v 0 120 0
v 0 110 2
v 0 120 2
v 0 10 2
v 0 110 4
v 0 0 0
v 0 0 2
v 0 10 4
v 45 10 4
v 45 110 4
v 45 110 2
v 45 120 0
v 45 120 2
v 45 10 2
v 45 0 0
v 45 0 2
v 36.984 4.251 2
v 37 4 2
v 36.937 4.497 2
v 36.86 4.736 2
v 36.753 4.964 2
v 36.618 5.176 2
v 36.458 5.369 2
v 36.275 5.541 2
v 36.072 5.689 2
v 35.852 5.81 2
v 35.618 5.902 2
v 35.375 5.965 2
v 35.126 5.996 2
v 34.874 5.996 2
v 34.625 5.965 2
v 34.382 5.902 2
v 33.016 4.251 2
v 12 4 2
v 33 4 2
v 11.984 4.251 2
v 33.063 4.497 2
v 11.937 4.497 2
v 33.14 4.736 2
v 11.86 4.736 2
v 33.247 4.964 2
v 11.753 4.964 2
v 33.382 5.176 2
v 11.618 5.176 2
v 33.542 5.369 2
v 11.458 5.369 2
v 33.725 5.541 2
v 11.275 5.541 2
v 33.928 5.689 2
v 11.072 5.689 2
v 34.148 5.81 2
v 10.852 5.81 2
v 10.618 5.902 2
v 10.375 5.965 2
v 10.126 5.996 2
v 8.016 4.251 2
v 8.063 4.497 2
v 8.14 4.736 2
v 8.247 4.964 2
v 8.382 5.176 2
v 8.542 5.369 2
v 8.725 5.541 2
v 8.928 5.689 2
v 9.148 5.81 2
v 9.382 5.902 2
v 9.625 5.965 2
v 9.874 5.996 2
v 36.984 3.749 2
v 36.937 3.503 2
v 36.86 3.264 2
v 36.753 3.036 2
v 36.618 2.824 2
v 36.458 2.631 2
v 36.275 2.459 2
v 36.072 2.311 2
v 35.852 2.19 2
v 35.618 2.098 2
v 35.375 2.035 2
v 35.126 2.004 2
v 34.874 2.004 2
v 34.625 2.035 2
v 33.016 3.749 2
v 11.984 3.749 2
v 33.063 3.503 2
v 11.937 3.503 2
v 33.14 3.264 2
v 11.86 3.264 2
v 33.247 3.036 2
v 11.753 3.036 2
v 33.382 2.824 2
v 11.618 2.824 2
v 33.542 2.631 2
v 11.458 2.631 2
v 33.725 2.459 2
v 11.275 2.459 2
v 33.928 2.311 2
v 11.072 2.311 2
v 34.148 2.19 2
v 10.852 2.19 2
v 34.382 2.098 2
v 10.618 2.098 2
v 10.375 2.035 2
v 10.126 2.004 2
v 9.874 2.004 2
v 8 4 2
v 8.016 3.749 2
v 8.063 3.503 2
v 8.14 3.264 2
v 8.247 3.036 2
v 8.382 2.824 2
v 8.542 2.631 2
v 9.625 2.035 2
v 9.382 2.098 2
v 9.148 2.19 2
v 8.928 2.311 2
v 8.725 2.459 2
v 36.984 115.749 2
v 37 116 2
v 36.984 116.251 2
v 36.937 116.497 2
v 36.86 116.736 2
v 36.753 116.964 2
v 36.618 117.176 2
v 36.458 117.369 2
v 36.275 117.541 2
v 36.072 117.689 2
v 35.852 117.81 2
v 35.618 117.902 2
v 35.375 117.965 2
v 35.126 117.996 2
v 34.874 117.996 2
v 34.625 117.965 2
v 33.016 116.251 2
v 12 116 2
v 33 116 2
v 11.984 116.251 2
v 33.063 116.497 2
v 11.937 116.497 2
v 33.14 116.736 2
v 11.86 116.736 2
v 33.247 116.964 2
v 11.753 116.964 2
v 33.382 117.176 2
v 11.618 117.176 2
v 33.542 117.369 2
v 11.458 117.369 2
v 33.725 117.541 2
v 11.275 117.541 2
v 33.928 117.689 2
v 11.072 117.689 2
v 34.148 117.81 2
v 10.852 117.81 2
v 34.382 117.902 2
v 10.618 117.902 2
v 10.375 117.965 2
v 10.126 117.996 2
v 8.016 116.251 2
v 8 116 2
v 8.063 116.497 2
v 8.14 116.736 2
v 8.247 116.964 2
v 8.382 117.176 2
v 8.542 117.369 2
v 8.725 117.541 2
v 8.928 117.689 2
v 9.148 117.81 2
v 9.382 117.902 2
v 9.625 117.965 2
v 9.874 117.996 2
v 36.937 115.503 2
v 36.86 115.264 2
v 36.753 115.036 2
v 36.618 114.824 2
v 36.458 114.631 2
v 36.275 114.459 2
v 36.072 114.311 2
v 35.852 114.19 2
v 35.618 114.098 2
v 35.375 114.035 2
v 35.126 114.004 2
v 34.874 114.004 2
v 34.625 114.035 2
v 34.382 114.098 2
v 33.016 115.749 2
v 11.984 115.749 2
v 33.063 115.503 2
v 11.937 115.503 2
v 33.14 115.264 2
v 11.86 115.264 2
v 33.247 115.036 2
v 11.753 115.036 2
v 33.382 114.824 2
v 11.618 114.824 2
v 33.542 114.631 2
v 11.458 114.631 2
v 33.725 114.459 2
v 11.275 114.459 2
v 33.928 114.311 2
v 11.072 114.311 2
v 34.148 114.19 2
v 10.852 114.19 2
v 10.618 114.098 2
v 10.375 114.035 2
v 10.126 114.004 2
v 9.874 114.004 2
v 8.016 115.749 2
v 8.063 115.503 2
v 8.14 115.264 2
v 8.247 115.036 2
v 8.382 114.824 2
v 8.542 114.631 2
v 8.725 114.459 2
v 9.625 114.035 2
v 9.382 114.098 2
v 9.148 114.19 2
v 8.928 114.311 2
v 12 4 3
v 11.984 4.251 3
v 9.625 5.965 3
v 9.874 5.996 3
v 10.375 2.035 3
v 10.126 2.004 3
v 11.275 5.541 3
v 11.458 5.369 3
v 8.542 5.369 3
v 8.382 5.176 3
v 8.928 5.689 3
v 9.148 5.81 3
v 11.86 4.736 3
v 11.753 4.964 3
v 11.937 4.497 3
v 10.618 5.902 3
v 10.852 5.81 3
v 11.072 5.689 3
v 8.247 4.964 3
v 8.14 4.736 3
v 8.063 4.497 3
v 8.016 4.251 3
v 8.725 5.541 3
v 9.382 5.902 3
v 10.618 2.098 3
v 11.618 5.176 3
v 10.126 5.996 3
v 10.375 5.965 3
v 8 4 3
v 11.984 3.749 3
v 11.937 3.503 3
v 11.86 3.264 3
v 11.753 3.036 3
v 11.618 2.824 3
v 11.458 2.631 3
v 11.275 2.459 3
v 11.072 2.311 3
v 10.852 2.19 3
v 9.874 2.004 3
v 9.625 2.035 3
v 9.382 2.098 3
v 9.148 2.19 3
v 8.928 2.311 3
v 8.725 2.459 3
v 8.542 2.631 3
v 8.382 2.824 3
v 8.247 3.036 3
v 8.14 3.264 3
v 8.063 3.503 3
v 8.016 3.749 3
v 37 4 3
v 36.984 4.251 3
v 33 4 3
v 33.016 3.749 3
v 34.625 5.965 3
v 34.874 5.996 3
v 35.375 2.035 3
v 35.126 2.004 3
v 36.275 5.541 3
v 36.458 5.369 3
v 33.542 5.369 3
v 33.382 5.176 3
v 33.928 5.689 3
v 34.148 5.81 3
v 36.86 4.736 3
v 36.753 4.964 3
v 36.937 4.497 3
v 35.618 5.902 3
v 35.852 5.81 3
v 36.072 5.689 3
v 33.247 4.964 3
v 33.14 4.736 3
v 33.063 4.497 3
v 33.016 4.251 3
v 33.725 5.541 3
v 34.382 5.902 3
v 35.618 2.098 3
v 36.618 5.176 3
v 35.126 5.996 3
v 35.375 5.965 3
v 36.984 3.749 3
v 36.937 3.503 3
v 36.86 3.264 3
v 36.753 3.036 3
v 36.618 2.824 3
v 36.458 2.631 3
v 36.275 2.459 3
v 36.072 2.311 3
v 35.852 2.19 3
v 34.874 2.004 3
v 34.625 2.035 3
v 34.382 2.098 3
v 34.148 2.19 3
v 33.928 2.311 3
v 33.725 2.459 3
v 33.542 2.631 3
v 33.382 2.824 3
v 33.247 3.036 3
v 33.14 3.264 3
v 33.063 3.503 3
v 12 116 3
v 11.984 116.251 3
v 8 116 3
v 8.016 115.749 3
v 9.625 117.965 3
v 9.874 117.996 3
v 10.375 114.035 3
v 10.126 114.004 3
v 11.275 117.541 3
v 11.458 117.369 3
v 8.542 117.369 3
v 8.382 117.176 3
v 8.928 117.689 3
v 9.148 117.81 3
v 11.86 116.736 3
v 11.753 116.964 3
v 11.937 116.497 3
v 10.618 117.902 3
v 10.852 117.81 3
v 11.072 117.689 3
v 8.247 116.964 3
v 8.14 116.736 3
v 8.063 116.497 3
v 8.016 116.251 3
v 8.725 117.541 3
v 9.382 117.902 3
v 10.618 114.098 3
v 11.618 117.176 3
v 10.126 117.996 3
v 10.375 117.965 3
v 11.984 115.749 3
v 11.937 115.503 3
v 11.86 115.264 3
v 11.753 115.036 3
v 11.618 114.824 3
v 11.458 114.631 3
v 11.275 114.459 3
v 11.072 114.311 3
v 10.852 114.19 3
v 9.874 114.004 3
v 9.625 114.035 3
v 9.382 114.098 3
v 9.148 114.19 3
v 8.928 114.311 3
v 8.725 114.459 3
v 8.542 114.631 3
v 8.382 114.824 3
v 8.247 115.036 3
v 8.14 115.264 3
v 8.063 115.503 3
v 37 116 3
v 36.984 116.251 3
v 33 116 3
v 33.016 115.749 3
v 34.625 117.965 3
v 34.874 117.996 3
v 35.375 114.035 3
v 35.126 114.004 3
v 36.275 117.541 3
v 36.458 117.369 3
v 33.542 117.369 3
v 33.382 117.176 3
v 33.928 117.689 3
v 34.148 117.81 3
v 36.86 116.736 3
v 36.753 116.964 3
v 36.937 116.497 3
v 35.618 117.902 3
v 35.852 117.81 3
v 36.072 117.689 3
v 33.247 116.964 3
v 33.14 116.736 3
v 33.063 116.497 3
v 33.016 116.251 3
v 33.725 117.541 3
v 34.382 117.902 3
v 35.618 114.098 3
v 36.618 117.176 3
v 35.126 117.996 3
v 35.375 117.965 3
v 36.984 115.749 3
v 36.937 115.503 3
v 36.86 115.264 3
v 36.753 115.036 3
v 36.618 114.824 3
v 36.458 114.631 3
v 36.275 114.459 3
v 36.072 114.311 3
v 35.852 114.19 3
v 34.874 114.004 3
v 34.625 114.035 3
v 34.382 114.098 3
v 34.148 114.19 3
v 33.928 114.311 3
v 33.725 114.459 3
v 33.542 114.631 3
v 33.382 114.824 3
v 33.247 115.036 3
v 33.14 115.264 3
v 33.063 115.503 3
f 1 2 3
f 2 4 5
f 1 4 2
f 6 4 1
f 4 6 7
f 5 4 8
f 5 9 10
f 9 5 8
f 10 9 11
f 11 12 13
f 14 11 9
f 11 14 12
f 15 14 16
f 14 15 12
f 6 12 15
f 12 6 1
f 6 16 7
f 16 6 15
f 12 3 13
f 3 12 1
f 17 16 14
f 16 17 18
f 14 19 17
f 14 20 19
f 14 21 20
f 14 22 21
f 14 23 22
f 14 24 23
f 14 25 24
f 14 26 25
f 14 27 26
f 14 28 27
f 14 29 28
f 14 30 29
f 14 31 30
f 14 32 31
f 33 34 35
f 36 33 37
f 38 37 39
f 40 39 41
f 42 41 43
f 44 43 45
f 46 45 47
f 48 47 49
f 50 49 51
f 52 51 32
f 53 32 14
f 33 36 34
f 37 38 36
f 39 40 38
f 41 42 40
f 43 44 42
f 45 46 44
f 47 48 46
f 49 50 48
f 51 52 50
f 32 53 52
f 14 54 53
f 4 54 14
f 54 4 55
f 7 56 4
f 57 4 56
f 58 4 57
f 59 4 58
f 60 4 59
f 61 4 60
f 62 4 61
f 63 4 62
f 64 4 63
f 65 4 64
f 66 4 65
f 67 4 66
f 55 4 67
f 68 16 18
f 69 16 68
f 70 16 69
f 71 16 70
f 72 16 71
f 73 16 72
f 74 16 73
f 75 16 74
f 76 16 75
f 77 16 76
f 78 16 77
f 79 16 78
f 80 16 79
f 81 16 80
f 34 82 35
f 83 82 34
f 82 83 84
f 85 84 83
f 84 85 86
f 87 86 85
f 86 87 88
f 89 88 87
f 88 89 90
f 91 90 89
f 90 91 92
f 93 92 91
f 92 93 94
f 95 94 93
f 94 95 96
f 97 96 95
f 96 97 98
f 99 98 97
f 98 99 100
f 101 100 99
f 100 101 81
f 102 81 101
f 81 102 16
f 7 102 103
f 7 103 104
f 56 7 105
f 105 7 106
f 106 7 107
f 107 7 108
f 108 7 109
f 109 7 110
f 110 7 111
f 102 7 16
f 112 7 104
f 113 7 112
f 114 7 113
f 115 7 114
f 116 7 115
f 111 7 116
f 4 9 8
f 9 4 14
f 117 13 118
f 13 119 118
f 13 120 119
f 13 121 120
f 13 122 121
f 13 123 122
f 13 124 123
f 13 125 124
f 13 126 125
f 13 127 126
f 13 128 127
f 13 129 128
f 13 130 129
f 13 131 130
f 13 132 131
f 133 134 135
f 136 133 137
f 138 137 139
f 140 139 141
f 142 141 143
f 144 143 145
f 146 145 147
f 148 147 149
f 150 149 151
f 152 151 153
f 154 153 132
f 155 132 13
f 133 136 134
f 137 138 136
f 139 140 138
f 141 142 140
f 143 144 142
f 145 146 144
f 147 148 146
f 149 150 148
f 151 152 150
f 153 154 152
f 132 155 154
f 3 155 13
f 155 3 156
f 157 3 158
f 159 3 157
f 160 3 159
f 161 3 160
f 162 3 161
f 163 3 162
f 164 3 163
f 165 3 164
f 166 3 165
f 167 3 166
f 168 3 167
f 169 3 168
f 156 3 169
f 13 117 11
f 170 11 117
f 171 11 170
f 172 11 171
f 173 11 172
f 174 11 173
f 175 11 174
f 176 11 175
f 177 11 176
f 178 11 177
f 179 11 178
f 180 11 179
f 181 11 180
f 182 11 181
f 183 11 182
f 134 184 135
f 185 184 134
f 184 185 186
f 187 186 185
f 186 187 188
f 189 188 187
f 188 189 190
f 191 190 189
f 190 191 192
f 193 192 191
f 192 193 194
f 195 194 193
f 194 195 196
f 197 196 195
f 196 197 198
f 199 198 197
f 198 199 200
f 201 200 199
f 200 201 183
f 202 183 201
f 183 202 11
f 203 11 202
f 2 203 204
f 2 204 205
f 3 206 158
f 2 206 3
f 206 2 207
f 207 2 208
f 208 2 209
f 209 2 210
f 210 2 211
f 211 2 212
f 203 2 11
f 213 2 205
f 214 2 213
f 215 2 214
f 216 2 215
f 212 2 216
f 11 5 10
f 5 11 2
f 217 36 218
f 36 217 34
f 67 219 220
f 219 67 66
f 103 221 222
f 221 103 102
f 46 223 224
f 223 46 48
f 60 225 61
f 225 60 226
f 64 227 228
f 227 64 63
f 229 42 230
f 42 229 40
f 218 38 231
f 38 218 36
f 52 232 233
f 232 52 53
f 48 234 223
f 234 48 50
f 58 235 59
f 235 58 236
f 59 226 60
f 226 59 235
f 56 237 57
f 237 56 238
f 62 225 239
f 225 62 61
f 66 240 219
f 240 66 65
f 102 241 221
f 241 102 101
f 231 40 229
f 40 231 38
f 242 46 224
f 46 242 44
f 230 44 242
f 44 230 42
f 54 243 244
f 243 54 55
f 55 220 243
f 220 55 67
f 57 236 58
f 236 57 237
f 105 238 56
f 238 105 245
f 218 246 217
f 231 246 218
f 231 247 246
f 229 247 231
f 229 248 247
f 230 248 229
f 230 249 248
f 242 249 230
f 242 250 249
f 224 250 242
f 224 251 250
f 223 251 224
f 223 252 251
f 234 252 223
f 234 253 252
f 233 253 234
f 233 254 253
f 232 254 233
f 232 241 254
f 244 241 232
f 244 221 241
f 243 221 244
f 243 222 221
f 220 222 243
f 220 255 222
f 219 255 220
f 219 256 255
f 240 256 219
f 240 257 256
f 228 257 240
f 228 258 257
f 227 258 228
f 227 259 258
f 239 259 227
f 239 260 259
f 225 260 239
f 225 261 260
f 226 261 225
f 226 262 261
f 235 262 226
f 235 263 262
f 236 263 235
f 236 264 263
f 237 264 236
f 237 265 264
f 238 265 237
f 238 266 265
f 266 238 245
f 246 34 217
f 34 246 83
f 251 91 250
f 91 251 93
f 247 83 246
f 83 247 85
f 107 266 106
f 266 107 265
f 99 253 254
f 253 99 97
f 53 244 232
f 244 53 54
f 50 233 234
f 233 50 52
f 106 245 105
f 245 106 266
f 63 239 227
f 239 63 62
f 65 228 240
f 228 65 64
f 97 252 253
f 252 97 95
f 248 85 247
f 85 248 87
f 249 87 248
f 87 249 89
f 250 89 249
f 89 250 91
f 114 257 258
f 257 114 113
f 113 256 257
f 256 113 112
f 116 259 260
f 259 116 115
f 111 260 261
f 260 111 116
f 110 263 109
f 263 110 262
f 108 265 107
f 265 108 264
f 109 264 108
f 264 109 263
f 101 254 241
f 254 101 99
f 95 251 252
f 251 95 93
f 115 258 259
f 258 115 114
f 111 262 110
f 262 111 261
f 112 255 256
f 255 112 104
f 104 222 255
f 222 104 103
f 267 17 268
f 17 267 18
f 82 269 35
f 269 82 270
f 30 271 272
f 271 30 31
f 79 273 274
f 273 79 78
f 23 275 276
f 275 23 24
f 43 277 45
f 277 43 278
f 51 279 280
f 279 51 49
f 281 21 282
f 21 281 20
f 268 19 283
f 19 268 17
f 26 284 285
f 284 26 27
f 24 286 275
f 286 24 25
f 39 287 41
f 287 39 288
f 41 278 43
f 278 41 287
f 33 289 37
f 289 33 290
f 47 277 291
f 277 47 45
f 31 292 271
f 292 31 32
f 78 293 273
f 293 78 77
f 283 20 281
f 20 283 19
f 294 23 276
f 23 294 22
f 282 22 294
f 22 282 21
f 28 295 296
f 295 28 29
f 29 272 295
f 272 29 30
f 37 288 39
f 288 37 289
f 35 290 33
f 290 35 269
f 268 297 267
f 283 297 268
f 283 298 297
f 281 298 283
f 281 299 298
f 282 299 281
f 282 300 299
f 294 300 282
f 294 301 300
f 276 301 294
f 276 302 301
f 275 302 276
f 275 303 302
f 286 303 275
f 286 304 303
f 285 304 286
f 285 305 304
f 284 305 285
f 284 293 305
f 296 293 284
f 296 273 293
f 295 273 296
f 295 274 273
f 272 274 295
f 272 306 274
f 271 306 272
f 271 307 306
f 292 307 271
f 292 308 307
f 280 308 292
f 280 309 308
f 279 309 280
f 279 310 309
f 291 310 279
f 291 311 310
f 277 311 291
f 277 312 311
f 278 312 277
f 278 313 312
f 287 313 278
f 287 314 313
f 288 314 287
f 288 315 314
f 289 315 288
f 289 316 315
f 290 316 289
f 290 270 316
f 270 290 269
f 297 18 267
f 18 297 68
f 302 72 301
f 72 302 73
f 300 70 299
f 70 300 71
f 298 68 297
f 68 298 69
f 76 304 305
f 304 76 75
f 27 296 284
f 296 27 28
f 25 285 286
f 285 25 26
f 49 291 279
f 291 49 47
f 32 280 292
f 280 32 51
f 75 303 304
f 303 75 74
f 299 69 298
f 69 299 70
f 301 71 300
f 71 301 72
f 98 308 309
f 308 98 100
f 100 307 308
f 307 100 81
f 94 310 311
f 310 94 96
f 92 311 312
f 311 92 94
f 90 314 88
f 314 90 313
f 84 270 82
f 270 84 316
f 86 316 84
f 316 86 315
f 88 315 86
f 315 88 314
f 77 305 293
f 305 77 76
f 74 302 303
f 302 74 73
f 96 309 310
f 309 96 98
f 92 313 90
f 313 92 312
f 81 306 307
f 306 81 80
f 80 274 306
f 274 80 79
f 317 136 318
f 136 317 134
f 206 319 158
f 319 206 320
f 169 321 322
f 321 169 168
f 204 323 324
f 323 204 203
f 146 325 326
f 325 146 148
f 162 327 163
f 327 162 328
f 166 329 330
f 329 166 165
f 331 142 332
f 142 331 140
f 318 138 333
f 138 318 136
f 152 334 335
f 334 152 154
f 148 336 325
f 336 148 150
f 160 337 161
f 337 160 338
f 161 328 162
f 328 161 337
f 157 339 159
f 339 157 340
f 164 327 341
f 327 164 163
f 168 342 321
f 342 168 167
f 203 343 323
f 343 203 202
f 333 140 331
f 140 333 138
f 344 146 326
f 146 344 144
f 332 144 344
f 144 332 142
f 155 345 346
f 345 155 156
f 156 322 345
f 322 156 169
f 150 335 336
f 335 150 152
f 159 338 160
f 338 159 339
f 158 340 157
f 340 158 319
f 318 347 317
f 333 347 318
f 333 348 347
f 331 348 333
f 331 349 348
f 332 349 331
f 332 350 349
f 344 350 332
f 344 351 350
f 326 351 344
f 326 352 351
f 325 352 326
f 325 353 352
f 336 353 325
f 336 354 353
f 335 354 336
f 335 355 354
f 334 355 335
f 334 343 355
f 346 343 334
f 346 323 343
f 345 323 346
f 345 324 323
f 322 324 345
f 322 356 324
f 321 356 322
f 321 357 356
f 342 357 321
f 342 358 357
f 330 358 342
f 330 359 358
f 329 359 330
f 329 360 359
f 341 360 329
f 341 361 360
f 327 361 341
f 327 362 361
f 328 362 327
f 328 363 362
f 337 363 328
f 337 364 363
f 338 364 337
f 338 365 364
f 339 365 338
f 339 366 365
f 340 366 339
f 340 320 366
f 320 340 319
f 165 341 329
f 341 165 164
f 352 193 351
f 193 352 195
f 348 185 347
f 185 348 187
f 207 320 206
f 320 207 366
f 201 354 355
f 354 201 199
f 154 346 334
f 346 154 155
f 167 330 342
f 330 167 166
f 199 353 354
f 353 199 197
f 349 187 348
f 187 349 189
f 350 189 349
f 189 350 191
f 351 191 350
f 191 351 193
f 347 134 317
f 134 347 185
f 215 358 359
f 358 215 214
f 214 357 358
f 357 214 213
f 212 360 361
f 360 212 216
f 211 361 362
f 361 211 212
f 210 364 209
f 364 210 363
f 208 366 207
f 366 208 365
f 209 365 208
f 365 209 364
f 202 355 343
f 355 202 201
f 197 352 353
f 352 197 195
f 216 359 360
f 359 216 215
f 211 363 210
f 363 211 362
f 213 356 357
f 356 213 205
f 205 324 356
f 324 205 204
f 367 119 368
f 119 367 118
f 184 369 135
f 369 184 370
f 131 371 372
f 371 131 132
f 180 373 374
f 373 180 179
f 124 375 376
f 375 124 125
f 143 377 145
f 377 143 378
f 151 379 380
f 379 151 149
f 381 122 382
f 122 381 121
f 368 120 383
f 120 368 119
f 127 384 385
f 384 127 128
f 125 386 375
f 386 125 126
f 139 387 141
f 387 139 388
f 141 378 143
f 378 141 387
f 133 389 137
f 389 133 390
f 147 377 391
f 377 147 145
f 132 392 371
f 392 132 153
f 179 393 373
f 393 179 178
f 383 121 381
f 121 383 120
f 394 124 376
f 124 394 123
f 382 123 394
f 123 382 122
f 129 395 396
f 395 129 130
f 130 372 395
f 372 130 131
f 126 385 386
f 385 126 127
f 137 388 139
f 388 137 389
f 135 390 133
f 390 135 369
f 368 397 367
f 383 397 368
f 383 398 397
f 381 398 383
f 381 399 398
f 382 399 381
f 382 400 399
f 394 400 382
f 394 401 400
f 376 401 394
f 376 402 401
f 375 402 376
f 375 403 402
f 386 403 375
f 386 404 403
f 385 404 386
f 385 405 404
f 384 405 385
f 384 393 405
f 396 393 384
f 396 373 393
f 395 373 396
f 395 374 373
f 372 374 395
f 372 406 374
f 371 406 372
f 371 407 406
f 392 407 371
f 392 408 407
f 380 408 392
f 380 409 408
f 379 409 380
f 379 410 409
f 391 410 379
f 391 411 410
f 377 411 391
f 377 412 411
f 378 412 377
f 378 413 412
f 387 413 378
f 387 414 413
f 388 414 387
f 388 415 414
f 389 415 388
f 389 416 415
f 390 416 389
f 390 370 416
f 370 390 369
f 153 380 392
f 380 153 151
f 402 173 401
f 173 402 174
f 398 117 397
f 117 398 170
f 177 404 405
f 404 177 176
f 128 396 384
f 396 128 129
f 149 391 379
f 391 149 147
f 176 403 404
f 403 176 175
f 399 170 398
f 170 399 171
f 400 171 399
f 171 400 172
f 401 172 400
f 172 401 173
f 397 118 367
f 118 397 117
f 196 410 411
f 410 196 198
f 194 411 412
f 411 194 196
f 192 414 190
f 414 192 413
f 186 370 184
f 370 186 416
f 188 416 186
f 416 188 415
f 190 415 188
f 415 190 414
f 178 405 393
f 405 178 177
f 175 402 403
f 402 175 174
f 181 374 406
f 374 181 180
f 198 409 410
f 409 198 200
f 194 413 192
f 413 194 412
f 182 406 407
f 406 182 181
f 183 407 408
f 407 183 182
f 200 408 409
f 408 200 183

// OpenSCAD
union() {
    difference() {
        cube([45,120,4]);
        translate([0, 0, 2])
            cube([45, 10, 2]);
        translate([0, 120 - 10, 2])
            cube([45, 10, 2]);
    };
    $fn=50;
    translate([10, 4, 0])
        cylinder(r=2,h=3);
    translate([(45 - 10), 4, 0])
        cylinder(r=2,h=3);
    translate([10, 120 - 4, 0])
        cylinder(r=2,h=3);
    translate([(45 - 10), 120 - 4, 0])
        cylinder(r=2,h=3);
};
